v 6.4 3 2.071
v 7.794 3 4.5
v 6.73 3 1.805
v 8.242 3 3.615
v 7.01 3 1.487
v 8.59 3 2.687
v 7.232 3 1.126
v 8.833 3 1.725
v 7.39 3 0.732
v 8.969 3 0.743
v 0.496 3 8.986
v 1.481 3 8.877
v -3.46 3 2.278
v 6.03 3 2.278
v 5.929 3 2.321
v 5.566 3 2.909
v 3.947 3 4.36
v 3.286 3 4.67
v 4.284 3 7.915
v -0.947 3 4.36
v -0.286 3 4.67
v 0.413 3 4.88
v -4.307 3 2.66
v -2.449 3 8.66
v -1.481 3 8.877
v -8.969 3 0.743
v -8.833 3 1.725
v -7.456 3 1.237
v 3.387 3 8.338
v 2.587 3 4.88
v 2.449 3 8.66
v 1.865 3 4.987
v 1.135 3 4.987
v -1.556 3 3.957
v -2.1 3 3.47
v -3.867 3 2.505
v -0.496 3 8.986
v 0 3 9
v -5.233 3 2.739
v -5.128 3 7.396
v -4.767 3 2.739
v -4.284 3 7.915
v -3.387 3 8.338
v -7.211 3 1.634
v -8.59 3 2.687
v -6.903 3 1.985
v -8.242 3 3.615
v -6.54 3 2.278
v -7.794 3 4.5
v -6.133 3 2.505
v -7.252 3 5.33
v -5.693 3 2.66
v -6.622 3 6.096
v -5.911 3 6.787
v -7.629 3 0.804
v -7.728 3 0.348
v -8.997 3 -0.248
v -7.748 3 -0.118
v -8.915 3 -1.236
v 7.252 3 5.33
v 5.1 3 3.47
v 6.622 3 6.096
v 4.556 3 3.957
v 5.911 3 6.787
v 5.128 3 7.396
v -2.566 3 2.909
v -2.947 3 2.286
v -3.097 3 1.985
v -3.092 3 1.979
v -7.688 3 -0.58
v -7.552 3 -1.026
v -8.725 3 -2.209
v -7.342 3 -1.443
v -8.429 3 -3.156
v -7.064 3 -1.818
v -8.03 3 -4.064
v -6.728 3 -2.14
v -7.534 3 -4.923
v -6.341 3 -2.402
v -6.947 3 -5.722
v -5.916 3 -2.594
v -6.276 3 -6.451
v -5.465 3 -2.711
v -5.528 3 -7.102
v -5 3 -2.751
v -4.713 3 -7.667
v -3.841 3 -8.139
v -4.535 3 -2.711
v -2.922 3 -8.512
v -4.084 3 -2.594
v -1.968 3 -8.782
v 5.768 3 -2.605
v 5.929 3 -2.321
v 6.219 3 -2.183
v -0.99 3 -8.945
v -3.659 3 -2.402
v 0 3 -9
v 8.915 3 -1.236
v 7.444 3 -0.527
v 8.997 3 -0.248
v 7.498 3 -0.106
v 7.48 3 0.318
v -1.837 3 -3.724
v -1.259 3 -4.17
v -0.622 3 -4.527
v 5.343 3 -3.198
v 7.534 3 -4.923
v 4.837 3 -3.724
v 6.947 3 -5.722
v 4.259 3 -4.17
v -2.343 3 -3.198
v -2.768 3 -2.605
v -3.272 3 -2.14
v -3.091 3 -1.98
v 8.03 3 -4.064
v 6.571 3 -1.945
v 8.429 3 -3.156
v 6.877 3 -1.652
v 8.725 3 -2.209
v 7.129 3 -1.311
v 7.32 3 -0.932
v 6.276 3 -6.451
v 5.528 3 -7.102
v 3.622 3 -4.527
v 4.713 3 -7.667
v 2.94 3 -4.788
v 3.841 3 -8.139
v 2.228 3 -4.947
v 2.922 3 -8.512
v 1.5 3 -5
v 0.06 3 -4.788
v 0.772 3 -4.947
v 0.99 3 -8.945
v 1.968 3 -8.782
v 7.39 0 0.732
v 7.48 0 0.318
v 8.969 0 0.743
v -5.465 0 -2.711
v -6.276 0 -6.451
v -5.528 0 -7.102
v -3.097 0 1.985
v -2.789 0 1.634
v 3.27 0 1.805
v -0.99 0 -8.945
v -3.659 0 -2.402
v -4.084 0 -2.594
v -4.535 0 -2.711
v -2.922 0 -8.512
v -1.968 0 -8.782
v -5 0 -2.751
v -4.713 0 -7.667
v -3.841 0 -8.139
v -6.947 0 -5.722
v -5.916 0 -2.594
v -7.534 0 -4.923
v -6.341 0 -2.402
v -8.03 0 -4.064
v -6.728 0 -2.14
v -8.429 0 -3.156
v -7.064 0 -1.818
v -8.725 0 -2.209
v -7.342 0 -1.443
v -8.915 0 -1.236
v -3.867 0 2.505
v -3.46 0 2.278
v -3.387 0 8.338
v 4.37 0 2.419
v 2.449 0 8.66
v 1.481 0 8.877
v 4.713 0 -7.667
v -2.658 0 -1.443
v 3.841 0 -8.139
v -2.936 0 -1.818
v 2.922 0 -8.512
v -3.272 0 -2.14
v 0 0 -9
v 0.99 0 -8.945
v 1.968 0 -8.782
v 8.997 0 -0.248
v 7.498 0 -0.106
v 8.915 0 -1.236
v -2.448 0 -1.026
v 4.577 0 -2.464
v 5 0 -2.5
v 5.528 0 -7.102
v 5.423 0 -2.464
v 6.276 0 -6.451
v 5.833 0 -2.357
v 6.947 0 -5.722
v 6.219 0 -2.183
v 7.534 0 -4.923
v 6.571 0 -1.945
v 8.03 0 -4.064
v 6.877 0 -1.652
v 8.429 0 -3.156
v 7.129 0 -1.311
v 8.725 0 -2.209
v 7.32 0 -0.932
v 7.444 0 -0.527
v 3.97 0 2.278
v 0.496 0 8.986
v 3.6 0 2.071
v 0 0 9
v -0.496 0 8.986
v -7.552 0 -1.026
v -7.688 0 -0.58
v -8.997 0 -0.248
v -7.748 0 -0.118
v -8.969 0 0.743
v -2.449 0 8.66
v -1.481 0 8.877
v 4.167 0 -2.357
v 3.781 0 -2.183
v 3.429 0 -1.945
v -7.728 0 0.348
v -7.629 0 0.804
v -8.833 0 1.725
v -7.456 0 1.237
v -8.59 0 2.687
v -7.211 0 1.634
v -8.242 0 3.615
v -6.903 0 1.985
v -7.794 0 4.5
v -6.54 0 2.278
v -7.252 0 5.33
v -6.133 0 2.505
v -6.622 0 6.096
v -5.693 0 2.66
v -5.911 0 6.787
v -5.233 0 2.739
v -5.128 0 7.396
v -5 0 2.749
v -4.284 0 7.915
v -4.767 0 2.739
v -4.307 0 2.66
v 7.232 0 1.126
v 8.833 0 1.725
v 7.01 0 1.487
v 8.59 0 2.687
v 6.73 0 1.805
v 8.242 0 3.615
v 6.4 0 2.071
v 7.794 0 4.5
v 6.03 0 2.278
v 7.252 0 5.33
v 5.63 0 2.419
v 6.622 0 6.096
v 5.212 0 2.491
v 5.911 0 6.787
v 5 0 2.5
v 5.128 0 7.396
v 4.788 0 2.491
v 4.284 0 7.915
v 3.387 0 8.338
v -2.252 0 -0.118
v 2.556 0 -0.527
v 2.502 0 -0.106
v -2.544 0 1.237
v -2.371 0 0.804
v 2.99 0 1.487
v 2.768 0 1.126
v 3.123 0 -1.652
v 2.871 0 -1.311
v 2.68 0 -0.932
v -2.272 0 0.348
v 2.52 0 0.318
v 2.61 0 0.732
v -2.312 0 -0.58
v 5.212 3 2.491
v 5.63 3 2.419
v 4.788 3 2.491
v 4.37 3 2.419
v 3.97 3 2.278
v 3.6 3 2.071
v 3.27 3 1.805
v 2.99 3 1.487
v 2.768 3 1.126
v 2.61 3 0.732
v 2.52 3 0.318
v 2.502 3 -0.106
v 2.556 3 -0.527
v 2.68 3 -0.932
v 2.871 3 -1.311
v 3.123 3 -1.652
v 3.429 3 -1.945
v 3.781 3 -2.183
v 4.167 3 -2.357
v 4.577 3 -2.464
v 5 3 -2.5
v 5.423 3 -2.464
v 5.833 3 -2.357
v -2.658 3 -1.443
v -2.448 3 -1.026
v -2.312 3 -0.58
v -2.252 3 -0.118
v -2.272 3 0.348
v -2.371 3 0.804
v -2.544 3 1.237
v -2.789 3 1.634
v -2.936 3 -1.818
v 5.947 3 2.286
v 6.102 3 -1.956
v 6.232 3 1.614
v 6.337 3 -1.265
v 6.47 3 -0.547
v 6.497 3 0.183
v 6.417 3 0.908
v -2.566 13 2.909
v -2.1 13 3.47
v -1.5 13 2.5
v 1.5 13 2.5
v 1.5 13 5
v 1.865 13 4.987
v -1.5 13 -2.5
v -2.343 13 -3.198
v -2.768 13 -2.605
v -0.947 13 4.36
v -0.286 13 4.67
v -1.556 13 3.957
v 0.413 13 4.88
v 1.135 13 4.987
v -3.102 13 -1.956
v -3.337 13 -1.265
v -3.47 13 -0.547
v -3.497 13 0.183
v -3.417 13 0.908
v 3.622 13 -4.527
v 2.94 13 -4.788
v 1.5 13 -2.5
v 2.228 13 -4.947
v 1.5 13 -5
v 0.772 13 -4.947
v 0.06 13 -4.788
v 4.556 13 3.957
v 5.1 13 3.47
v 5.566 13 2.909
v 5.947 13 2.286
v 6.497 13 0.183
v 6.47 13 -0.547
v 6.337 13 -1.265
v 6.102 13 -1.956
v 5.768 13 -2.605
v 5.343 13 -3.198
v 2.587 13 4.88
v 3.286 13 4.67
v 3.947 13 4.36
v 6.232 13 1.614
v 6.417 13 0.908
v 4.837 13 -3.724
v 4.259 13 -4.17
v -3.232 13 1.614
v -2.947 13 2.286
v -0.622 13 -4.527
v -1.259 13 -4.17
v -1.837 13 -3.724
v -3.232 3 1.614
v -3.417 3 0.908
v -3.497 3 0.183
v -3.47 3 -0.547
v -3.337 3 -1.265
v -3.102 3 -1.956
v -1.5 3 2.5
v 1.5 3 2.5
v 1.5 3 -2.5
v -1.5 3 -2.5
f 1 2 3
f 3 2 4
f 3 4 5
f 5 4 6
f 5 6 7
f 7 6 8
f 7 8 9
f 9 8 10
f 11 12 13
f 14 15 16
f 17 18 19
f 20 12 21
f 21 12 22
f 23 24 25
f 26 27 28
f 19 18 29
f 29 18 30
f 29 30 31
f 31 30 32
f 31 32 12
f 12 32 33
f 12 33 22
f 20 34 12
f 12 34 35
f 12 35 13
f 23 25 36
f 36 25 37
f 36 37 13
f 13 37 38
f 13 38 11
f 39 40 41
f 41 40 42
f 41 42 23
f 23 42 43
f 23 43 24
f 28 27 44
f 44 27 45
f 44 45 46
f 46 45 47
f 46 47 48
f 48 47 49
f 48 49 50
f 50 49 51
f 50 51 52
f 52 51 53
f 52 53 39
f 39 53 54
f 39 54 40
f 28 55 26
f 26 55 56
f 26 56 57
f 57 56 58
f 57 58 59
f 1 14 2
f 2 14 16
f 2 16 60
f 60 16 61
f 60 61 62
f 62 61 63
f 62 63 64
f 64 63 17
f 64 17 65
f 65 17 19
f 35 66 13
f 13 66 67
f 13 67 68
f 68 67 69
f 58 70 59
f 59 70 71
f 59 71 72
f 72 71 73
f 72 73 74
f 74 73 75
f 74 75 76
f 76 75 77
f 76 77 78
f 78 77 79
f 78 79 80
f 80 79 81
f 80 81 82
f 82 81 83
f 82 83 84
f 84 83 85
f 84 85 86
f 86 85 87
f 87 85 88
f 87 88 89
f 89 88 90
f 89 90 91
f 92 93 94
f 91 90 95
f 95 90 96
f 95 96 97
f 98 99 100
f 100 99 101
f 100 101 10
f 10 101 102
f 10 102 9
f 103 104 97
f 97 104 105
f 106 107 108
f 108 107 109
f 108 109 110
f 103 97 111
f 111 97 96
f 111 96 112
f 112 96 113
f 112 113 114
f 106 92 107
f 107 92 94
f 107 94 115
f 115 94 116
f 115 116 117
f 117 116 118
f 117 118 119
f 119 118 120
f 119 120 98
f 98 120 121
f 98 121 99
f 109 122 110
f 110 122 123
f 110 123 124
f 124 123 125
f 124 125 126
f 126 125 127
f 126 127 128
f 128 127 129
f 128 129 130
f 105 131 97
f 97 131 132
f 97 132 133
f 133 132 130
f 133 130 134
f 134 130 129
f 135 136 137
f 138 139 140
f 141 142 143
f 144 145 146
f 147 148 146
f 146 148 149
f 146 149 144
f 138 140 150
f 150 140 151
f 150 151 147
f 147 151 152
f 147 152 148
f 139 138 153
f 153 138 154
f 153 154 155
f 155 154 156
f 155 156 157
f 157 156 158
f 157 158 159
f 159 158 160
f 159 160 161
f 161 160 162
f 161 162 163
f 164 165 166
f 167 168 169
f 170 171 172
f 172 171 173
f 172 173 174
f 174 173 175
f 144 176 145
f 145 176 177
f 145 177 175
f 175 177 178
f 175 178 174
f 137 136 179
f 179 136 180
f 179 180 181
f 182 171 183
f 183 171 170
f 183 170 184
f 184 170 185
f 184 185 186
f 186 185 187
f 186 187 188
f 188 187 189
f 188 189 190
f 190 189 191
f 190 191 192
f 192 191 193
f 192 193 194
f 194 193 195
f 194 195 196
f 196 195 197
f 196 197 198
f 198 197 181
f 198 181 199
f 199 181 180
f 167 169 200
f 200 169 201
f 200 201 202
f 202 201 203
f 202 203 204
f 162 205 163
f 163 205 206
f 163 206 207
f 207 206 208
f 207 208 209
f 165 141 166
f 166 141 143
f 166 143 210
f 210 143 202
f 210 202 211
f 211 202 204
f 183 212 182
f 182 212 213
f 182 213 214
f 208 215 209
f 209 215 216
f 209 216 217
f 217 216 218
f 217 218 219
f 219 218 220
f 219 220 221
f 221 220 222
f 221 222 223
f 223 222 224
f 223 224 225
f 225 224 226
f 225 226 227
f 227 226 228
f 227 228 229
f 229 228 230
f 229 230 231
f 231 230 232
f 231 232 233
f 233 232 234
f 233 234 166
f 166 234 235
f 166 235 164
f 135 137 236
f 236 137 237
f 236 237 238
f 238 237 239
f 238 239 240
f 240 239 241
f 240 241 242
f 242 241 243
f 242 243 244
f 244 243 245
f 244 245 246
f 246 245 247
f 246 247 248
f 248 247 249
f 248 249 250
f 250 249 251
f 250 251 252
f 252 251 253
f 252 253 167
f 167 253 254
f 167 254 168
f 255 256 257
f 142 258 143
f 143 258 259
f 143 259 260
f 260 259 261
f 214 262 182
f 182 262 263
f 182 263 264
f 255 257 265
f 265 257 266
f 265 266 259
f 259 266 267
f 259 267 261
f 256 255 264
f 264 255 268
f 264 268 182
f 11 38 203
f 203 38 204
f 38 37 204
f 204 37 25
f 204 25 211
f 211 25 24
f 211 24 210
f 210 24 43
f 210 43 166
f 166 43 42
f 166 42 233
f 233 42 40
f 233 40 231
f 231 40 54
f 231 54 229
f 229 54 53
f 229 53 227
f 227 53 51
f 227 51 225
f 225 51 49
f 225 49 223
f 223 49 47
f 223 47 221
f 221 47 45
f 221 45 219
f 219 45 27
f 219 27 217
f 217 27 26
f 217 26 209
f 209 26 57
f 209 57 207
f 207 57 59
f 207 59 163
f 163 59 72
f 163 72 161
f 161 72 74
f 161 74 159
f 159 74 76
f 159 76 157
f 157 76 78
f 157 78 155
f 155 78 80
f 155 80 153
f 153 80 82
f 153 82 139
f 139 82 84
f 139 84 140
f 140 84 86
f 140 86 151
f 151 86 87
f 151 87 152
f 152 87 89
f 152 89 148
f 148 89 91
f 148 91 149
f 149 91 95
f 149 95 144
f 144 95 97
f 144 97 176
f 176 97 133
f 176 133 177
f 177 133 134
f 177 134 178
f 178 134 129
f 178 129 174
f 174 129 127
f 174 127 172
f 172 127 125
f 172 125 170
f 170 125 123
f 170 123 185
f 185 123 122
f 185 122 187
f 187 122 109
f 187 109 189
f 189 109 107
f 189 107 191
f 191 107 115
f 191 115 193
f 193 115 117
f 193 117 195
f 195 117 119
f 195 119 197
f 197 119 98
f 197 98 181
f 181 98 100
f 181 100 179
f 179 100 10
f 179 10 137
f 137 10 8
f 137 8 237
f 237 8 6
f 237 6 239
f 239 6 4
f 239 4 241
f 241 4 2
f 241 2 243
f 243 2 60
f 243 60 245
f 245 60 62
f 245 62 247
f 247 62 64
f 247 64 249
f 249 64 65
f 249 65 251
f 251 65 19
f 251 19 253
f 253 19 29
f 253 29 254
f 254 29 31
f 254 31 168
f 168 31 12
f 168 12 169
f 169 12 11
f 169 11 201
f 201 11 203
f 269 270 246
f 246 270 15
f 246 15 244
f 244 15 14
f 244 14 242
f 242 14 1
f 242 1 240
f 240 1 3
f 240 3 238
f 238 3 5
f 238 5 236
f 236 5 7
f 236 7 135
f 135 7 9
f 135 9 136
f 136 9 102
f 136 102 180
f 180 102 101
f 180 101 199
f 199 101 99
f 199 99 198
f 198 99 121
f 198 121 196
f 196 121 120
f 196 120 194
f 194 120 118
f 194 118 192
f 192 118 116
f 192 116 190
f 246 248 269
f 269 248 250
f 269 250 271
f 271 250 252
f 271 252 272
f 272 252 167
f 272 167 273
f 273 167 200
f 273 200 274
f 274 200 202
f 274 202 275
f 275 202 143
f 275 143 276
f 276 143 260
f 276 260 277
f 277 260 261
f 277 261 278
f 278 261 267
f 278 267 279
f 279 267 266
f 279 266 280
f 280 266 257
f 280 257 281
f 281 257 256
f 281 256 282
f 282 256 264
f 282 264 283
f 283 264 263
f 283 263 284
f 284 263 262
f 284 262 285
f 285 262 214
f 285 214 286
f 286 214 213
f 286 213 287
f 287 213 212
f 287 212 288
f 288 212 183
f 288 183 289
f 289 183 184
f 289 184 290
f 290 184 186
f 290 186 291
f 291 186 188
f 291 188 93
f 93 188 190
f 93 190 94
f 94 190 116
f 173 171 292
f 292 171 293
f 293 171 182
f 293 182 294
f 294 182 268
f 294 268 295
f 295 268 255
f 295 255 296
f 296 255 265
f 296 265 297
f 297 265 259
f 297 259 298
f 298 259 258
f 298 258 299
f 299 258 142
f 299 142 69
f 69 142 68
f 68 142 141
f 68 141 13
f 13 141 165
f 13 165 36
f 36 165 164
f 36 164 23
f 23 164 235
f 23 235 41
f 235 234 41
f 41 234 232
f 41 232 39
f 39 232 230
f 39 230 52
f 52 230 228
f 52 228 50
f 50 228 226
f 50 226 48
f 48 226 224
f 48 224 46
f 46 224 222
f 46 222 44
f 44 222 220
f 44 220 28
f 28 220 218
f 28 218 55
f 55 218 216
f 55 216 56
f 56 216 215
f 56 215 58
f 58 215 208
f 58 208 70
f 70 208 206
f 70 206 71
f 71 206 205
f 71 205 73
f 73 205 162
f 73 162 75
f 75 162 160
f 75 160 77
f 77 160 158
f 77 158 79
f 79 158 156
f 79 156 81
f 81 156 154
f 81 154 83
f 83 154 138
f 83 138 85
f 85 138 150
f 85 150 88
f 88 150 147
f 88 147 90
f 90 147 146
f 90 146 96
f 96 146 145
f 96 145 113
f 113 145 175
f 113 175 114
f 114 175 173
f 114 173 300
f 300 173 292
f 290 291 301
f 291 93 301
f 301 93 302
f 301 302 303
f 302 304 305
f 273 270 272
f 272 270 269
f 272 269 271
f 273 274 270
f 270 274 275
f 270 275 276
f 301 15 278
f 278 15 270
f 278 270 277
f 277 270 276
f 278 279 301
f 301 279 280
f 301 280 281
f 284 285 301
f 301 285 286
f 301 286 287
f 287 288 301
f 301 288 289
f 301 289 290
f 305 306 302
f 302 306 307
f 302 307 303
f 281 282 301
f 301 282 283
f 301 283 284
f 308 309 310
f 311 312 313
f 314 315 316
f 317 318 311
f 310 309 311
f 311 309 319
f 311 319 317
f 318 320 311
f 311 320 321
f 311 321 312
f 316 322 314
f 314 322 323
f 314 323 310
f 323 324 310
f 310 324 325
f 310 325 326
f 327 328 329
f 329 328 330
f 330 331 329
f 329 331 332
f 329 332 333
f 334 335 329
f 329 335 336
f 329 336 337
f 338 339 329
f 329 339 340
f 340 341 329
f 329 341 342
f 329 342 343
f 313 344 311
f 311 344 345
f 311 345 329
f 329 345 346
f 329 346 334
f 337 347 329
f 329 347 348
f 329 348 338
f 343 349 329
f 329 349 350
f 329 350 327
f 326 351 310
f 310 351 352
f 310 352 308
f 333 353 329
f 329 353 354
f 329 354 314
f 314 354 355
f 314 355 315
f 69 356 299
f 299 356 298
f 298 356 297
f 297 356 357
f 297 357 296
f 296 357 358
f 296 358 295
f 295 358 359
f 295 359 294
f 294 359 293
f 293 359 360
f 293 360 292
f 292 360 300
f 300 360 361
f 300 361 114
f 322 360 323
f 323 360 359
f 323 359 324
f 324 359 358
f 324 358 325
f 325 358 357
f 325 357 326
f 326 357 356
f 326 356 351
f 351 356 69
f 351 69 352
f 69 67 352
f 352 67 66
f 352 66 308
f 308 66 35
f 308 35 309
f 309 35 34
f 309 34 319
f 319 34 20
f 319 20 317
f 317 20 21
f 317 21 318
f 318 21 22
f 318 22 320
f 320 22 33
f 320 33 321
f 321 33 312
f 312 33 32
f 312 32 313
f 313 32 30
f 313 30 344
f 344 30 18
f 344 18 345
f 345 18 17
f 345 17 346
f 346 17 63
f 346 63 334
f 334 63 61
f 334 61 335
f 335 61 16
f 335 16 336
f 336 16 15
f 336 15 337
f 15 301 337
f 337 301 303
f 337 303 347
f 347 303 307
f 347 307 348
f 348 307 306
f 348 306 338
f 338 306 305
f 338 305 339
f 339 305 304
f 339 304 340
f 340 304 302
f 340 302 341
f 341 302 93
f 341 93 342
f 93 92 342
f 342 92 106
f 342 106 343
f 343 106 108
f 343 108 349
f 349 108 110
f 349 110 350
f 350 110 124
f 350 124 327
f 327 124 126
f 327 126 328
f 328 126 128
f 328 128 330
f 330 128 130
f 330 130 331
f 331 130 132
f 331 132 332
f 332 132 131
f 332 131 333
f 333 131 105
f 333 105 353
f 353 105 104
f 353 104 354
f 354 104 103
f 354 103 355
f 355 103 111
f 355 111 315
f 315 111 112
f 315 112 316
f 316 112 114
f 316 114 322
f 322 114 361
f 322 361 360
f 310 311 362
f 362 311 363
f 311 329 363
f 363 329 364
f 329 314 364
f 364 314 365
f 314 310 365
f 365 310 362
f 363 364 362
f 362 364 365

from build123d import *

# Parameters (mm, degrees)
SKETCH1_R           = 9
SKETCH1_R_2         = 2.75
SKETCH1_R_3         = 2.5
BOSS_EXTRUDE1_DEPTH = 3
SKETCH4_R           = 5
SKETCH4_W           = 3
SKETCH4_H           = 5
BOSS_EXTRUDE4_DEPTH = 10


with BuildPart() as part:
    # Sketch1 → Boss-Extrude1 (new body)
    with BuildSketch(Plane(origin=(0, 0, 0), x_dir=(1, 0, 0), z_dir=(0, 1, 0))):
        Circle(SKETCH1_R)
        with Locations((-5, 0.000835232)):
            Circle(SKETCH1_R_2, mode=Mode.SUBTRACT)
        with Locations((5, 0)):
            Circle(SKETCH1_R_3, mode=Mode.SUBTRACT)
    extrude(amount=BOSS_EXTRUDE1_DEPTH)

    # Sketch4 → Boss-Extrude4 (add)
    with BuildSketch(Plane(origin=(0, 3, 0), x_dir=(1, 0, 0), z_dir=(0, 1, 0))):
        with Locations((1.5, 0)):
            Circle(SKETCH4_R)
        Rectangle(SKETCH4_W, SKETCH4_H, mode=Mode.SUBTRACT)
    extrude(amount=BOSS_EXTRUDE4_DEPTH)


solid = part.part
